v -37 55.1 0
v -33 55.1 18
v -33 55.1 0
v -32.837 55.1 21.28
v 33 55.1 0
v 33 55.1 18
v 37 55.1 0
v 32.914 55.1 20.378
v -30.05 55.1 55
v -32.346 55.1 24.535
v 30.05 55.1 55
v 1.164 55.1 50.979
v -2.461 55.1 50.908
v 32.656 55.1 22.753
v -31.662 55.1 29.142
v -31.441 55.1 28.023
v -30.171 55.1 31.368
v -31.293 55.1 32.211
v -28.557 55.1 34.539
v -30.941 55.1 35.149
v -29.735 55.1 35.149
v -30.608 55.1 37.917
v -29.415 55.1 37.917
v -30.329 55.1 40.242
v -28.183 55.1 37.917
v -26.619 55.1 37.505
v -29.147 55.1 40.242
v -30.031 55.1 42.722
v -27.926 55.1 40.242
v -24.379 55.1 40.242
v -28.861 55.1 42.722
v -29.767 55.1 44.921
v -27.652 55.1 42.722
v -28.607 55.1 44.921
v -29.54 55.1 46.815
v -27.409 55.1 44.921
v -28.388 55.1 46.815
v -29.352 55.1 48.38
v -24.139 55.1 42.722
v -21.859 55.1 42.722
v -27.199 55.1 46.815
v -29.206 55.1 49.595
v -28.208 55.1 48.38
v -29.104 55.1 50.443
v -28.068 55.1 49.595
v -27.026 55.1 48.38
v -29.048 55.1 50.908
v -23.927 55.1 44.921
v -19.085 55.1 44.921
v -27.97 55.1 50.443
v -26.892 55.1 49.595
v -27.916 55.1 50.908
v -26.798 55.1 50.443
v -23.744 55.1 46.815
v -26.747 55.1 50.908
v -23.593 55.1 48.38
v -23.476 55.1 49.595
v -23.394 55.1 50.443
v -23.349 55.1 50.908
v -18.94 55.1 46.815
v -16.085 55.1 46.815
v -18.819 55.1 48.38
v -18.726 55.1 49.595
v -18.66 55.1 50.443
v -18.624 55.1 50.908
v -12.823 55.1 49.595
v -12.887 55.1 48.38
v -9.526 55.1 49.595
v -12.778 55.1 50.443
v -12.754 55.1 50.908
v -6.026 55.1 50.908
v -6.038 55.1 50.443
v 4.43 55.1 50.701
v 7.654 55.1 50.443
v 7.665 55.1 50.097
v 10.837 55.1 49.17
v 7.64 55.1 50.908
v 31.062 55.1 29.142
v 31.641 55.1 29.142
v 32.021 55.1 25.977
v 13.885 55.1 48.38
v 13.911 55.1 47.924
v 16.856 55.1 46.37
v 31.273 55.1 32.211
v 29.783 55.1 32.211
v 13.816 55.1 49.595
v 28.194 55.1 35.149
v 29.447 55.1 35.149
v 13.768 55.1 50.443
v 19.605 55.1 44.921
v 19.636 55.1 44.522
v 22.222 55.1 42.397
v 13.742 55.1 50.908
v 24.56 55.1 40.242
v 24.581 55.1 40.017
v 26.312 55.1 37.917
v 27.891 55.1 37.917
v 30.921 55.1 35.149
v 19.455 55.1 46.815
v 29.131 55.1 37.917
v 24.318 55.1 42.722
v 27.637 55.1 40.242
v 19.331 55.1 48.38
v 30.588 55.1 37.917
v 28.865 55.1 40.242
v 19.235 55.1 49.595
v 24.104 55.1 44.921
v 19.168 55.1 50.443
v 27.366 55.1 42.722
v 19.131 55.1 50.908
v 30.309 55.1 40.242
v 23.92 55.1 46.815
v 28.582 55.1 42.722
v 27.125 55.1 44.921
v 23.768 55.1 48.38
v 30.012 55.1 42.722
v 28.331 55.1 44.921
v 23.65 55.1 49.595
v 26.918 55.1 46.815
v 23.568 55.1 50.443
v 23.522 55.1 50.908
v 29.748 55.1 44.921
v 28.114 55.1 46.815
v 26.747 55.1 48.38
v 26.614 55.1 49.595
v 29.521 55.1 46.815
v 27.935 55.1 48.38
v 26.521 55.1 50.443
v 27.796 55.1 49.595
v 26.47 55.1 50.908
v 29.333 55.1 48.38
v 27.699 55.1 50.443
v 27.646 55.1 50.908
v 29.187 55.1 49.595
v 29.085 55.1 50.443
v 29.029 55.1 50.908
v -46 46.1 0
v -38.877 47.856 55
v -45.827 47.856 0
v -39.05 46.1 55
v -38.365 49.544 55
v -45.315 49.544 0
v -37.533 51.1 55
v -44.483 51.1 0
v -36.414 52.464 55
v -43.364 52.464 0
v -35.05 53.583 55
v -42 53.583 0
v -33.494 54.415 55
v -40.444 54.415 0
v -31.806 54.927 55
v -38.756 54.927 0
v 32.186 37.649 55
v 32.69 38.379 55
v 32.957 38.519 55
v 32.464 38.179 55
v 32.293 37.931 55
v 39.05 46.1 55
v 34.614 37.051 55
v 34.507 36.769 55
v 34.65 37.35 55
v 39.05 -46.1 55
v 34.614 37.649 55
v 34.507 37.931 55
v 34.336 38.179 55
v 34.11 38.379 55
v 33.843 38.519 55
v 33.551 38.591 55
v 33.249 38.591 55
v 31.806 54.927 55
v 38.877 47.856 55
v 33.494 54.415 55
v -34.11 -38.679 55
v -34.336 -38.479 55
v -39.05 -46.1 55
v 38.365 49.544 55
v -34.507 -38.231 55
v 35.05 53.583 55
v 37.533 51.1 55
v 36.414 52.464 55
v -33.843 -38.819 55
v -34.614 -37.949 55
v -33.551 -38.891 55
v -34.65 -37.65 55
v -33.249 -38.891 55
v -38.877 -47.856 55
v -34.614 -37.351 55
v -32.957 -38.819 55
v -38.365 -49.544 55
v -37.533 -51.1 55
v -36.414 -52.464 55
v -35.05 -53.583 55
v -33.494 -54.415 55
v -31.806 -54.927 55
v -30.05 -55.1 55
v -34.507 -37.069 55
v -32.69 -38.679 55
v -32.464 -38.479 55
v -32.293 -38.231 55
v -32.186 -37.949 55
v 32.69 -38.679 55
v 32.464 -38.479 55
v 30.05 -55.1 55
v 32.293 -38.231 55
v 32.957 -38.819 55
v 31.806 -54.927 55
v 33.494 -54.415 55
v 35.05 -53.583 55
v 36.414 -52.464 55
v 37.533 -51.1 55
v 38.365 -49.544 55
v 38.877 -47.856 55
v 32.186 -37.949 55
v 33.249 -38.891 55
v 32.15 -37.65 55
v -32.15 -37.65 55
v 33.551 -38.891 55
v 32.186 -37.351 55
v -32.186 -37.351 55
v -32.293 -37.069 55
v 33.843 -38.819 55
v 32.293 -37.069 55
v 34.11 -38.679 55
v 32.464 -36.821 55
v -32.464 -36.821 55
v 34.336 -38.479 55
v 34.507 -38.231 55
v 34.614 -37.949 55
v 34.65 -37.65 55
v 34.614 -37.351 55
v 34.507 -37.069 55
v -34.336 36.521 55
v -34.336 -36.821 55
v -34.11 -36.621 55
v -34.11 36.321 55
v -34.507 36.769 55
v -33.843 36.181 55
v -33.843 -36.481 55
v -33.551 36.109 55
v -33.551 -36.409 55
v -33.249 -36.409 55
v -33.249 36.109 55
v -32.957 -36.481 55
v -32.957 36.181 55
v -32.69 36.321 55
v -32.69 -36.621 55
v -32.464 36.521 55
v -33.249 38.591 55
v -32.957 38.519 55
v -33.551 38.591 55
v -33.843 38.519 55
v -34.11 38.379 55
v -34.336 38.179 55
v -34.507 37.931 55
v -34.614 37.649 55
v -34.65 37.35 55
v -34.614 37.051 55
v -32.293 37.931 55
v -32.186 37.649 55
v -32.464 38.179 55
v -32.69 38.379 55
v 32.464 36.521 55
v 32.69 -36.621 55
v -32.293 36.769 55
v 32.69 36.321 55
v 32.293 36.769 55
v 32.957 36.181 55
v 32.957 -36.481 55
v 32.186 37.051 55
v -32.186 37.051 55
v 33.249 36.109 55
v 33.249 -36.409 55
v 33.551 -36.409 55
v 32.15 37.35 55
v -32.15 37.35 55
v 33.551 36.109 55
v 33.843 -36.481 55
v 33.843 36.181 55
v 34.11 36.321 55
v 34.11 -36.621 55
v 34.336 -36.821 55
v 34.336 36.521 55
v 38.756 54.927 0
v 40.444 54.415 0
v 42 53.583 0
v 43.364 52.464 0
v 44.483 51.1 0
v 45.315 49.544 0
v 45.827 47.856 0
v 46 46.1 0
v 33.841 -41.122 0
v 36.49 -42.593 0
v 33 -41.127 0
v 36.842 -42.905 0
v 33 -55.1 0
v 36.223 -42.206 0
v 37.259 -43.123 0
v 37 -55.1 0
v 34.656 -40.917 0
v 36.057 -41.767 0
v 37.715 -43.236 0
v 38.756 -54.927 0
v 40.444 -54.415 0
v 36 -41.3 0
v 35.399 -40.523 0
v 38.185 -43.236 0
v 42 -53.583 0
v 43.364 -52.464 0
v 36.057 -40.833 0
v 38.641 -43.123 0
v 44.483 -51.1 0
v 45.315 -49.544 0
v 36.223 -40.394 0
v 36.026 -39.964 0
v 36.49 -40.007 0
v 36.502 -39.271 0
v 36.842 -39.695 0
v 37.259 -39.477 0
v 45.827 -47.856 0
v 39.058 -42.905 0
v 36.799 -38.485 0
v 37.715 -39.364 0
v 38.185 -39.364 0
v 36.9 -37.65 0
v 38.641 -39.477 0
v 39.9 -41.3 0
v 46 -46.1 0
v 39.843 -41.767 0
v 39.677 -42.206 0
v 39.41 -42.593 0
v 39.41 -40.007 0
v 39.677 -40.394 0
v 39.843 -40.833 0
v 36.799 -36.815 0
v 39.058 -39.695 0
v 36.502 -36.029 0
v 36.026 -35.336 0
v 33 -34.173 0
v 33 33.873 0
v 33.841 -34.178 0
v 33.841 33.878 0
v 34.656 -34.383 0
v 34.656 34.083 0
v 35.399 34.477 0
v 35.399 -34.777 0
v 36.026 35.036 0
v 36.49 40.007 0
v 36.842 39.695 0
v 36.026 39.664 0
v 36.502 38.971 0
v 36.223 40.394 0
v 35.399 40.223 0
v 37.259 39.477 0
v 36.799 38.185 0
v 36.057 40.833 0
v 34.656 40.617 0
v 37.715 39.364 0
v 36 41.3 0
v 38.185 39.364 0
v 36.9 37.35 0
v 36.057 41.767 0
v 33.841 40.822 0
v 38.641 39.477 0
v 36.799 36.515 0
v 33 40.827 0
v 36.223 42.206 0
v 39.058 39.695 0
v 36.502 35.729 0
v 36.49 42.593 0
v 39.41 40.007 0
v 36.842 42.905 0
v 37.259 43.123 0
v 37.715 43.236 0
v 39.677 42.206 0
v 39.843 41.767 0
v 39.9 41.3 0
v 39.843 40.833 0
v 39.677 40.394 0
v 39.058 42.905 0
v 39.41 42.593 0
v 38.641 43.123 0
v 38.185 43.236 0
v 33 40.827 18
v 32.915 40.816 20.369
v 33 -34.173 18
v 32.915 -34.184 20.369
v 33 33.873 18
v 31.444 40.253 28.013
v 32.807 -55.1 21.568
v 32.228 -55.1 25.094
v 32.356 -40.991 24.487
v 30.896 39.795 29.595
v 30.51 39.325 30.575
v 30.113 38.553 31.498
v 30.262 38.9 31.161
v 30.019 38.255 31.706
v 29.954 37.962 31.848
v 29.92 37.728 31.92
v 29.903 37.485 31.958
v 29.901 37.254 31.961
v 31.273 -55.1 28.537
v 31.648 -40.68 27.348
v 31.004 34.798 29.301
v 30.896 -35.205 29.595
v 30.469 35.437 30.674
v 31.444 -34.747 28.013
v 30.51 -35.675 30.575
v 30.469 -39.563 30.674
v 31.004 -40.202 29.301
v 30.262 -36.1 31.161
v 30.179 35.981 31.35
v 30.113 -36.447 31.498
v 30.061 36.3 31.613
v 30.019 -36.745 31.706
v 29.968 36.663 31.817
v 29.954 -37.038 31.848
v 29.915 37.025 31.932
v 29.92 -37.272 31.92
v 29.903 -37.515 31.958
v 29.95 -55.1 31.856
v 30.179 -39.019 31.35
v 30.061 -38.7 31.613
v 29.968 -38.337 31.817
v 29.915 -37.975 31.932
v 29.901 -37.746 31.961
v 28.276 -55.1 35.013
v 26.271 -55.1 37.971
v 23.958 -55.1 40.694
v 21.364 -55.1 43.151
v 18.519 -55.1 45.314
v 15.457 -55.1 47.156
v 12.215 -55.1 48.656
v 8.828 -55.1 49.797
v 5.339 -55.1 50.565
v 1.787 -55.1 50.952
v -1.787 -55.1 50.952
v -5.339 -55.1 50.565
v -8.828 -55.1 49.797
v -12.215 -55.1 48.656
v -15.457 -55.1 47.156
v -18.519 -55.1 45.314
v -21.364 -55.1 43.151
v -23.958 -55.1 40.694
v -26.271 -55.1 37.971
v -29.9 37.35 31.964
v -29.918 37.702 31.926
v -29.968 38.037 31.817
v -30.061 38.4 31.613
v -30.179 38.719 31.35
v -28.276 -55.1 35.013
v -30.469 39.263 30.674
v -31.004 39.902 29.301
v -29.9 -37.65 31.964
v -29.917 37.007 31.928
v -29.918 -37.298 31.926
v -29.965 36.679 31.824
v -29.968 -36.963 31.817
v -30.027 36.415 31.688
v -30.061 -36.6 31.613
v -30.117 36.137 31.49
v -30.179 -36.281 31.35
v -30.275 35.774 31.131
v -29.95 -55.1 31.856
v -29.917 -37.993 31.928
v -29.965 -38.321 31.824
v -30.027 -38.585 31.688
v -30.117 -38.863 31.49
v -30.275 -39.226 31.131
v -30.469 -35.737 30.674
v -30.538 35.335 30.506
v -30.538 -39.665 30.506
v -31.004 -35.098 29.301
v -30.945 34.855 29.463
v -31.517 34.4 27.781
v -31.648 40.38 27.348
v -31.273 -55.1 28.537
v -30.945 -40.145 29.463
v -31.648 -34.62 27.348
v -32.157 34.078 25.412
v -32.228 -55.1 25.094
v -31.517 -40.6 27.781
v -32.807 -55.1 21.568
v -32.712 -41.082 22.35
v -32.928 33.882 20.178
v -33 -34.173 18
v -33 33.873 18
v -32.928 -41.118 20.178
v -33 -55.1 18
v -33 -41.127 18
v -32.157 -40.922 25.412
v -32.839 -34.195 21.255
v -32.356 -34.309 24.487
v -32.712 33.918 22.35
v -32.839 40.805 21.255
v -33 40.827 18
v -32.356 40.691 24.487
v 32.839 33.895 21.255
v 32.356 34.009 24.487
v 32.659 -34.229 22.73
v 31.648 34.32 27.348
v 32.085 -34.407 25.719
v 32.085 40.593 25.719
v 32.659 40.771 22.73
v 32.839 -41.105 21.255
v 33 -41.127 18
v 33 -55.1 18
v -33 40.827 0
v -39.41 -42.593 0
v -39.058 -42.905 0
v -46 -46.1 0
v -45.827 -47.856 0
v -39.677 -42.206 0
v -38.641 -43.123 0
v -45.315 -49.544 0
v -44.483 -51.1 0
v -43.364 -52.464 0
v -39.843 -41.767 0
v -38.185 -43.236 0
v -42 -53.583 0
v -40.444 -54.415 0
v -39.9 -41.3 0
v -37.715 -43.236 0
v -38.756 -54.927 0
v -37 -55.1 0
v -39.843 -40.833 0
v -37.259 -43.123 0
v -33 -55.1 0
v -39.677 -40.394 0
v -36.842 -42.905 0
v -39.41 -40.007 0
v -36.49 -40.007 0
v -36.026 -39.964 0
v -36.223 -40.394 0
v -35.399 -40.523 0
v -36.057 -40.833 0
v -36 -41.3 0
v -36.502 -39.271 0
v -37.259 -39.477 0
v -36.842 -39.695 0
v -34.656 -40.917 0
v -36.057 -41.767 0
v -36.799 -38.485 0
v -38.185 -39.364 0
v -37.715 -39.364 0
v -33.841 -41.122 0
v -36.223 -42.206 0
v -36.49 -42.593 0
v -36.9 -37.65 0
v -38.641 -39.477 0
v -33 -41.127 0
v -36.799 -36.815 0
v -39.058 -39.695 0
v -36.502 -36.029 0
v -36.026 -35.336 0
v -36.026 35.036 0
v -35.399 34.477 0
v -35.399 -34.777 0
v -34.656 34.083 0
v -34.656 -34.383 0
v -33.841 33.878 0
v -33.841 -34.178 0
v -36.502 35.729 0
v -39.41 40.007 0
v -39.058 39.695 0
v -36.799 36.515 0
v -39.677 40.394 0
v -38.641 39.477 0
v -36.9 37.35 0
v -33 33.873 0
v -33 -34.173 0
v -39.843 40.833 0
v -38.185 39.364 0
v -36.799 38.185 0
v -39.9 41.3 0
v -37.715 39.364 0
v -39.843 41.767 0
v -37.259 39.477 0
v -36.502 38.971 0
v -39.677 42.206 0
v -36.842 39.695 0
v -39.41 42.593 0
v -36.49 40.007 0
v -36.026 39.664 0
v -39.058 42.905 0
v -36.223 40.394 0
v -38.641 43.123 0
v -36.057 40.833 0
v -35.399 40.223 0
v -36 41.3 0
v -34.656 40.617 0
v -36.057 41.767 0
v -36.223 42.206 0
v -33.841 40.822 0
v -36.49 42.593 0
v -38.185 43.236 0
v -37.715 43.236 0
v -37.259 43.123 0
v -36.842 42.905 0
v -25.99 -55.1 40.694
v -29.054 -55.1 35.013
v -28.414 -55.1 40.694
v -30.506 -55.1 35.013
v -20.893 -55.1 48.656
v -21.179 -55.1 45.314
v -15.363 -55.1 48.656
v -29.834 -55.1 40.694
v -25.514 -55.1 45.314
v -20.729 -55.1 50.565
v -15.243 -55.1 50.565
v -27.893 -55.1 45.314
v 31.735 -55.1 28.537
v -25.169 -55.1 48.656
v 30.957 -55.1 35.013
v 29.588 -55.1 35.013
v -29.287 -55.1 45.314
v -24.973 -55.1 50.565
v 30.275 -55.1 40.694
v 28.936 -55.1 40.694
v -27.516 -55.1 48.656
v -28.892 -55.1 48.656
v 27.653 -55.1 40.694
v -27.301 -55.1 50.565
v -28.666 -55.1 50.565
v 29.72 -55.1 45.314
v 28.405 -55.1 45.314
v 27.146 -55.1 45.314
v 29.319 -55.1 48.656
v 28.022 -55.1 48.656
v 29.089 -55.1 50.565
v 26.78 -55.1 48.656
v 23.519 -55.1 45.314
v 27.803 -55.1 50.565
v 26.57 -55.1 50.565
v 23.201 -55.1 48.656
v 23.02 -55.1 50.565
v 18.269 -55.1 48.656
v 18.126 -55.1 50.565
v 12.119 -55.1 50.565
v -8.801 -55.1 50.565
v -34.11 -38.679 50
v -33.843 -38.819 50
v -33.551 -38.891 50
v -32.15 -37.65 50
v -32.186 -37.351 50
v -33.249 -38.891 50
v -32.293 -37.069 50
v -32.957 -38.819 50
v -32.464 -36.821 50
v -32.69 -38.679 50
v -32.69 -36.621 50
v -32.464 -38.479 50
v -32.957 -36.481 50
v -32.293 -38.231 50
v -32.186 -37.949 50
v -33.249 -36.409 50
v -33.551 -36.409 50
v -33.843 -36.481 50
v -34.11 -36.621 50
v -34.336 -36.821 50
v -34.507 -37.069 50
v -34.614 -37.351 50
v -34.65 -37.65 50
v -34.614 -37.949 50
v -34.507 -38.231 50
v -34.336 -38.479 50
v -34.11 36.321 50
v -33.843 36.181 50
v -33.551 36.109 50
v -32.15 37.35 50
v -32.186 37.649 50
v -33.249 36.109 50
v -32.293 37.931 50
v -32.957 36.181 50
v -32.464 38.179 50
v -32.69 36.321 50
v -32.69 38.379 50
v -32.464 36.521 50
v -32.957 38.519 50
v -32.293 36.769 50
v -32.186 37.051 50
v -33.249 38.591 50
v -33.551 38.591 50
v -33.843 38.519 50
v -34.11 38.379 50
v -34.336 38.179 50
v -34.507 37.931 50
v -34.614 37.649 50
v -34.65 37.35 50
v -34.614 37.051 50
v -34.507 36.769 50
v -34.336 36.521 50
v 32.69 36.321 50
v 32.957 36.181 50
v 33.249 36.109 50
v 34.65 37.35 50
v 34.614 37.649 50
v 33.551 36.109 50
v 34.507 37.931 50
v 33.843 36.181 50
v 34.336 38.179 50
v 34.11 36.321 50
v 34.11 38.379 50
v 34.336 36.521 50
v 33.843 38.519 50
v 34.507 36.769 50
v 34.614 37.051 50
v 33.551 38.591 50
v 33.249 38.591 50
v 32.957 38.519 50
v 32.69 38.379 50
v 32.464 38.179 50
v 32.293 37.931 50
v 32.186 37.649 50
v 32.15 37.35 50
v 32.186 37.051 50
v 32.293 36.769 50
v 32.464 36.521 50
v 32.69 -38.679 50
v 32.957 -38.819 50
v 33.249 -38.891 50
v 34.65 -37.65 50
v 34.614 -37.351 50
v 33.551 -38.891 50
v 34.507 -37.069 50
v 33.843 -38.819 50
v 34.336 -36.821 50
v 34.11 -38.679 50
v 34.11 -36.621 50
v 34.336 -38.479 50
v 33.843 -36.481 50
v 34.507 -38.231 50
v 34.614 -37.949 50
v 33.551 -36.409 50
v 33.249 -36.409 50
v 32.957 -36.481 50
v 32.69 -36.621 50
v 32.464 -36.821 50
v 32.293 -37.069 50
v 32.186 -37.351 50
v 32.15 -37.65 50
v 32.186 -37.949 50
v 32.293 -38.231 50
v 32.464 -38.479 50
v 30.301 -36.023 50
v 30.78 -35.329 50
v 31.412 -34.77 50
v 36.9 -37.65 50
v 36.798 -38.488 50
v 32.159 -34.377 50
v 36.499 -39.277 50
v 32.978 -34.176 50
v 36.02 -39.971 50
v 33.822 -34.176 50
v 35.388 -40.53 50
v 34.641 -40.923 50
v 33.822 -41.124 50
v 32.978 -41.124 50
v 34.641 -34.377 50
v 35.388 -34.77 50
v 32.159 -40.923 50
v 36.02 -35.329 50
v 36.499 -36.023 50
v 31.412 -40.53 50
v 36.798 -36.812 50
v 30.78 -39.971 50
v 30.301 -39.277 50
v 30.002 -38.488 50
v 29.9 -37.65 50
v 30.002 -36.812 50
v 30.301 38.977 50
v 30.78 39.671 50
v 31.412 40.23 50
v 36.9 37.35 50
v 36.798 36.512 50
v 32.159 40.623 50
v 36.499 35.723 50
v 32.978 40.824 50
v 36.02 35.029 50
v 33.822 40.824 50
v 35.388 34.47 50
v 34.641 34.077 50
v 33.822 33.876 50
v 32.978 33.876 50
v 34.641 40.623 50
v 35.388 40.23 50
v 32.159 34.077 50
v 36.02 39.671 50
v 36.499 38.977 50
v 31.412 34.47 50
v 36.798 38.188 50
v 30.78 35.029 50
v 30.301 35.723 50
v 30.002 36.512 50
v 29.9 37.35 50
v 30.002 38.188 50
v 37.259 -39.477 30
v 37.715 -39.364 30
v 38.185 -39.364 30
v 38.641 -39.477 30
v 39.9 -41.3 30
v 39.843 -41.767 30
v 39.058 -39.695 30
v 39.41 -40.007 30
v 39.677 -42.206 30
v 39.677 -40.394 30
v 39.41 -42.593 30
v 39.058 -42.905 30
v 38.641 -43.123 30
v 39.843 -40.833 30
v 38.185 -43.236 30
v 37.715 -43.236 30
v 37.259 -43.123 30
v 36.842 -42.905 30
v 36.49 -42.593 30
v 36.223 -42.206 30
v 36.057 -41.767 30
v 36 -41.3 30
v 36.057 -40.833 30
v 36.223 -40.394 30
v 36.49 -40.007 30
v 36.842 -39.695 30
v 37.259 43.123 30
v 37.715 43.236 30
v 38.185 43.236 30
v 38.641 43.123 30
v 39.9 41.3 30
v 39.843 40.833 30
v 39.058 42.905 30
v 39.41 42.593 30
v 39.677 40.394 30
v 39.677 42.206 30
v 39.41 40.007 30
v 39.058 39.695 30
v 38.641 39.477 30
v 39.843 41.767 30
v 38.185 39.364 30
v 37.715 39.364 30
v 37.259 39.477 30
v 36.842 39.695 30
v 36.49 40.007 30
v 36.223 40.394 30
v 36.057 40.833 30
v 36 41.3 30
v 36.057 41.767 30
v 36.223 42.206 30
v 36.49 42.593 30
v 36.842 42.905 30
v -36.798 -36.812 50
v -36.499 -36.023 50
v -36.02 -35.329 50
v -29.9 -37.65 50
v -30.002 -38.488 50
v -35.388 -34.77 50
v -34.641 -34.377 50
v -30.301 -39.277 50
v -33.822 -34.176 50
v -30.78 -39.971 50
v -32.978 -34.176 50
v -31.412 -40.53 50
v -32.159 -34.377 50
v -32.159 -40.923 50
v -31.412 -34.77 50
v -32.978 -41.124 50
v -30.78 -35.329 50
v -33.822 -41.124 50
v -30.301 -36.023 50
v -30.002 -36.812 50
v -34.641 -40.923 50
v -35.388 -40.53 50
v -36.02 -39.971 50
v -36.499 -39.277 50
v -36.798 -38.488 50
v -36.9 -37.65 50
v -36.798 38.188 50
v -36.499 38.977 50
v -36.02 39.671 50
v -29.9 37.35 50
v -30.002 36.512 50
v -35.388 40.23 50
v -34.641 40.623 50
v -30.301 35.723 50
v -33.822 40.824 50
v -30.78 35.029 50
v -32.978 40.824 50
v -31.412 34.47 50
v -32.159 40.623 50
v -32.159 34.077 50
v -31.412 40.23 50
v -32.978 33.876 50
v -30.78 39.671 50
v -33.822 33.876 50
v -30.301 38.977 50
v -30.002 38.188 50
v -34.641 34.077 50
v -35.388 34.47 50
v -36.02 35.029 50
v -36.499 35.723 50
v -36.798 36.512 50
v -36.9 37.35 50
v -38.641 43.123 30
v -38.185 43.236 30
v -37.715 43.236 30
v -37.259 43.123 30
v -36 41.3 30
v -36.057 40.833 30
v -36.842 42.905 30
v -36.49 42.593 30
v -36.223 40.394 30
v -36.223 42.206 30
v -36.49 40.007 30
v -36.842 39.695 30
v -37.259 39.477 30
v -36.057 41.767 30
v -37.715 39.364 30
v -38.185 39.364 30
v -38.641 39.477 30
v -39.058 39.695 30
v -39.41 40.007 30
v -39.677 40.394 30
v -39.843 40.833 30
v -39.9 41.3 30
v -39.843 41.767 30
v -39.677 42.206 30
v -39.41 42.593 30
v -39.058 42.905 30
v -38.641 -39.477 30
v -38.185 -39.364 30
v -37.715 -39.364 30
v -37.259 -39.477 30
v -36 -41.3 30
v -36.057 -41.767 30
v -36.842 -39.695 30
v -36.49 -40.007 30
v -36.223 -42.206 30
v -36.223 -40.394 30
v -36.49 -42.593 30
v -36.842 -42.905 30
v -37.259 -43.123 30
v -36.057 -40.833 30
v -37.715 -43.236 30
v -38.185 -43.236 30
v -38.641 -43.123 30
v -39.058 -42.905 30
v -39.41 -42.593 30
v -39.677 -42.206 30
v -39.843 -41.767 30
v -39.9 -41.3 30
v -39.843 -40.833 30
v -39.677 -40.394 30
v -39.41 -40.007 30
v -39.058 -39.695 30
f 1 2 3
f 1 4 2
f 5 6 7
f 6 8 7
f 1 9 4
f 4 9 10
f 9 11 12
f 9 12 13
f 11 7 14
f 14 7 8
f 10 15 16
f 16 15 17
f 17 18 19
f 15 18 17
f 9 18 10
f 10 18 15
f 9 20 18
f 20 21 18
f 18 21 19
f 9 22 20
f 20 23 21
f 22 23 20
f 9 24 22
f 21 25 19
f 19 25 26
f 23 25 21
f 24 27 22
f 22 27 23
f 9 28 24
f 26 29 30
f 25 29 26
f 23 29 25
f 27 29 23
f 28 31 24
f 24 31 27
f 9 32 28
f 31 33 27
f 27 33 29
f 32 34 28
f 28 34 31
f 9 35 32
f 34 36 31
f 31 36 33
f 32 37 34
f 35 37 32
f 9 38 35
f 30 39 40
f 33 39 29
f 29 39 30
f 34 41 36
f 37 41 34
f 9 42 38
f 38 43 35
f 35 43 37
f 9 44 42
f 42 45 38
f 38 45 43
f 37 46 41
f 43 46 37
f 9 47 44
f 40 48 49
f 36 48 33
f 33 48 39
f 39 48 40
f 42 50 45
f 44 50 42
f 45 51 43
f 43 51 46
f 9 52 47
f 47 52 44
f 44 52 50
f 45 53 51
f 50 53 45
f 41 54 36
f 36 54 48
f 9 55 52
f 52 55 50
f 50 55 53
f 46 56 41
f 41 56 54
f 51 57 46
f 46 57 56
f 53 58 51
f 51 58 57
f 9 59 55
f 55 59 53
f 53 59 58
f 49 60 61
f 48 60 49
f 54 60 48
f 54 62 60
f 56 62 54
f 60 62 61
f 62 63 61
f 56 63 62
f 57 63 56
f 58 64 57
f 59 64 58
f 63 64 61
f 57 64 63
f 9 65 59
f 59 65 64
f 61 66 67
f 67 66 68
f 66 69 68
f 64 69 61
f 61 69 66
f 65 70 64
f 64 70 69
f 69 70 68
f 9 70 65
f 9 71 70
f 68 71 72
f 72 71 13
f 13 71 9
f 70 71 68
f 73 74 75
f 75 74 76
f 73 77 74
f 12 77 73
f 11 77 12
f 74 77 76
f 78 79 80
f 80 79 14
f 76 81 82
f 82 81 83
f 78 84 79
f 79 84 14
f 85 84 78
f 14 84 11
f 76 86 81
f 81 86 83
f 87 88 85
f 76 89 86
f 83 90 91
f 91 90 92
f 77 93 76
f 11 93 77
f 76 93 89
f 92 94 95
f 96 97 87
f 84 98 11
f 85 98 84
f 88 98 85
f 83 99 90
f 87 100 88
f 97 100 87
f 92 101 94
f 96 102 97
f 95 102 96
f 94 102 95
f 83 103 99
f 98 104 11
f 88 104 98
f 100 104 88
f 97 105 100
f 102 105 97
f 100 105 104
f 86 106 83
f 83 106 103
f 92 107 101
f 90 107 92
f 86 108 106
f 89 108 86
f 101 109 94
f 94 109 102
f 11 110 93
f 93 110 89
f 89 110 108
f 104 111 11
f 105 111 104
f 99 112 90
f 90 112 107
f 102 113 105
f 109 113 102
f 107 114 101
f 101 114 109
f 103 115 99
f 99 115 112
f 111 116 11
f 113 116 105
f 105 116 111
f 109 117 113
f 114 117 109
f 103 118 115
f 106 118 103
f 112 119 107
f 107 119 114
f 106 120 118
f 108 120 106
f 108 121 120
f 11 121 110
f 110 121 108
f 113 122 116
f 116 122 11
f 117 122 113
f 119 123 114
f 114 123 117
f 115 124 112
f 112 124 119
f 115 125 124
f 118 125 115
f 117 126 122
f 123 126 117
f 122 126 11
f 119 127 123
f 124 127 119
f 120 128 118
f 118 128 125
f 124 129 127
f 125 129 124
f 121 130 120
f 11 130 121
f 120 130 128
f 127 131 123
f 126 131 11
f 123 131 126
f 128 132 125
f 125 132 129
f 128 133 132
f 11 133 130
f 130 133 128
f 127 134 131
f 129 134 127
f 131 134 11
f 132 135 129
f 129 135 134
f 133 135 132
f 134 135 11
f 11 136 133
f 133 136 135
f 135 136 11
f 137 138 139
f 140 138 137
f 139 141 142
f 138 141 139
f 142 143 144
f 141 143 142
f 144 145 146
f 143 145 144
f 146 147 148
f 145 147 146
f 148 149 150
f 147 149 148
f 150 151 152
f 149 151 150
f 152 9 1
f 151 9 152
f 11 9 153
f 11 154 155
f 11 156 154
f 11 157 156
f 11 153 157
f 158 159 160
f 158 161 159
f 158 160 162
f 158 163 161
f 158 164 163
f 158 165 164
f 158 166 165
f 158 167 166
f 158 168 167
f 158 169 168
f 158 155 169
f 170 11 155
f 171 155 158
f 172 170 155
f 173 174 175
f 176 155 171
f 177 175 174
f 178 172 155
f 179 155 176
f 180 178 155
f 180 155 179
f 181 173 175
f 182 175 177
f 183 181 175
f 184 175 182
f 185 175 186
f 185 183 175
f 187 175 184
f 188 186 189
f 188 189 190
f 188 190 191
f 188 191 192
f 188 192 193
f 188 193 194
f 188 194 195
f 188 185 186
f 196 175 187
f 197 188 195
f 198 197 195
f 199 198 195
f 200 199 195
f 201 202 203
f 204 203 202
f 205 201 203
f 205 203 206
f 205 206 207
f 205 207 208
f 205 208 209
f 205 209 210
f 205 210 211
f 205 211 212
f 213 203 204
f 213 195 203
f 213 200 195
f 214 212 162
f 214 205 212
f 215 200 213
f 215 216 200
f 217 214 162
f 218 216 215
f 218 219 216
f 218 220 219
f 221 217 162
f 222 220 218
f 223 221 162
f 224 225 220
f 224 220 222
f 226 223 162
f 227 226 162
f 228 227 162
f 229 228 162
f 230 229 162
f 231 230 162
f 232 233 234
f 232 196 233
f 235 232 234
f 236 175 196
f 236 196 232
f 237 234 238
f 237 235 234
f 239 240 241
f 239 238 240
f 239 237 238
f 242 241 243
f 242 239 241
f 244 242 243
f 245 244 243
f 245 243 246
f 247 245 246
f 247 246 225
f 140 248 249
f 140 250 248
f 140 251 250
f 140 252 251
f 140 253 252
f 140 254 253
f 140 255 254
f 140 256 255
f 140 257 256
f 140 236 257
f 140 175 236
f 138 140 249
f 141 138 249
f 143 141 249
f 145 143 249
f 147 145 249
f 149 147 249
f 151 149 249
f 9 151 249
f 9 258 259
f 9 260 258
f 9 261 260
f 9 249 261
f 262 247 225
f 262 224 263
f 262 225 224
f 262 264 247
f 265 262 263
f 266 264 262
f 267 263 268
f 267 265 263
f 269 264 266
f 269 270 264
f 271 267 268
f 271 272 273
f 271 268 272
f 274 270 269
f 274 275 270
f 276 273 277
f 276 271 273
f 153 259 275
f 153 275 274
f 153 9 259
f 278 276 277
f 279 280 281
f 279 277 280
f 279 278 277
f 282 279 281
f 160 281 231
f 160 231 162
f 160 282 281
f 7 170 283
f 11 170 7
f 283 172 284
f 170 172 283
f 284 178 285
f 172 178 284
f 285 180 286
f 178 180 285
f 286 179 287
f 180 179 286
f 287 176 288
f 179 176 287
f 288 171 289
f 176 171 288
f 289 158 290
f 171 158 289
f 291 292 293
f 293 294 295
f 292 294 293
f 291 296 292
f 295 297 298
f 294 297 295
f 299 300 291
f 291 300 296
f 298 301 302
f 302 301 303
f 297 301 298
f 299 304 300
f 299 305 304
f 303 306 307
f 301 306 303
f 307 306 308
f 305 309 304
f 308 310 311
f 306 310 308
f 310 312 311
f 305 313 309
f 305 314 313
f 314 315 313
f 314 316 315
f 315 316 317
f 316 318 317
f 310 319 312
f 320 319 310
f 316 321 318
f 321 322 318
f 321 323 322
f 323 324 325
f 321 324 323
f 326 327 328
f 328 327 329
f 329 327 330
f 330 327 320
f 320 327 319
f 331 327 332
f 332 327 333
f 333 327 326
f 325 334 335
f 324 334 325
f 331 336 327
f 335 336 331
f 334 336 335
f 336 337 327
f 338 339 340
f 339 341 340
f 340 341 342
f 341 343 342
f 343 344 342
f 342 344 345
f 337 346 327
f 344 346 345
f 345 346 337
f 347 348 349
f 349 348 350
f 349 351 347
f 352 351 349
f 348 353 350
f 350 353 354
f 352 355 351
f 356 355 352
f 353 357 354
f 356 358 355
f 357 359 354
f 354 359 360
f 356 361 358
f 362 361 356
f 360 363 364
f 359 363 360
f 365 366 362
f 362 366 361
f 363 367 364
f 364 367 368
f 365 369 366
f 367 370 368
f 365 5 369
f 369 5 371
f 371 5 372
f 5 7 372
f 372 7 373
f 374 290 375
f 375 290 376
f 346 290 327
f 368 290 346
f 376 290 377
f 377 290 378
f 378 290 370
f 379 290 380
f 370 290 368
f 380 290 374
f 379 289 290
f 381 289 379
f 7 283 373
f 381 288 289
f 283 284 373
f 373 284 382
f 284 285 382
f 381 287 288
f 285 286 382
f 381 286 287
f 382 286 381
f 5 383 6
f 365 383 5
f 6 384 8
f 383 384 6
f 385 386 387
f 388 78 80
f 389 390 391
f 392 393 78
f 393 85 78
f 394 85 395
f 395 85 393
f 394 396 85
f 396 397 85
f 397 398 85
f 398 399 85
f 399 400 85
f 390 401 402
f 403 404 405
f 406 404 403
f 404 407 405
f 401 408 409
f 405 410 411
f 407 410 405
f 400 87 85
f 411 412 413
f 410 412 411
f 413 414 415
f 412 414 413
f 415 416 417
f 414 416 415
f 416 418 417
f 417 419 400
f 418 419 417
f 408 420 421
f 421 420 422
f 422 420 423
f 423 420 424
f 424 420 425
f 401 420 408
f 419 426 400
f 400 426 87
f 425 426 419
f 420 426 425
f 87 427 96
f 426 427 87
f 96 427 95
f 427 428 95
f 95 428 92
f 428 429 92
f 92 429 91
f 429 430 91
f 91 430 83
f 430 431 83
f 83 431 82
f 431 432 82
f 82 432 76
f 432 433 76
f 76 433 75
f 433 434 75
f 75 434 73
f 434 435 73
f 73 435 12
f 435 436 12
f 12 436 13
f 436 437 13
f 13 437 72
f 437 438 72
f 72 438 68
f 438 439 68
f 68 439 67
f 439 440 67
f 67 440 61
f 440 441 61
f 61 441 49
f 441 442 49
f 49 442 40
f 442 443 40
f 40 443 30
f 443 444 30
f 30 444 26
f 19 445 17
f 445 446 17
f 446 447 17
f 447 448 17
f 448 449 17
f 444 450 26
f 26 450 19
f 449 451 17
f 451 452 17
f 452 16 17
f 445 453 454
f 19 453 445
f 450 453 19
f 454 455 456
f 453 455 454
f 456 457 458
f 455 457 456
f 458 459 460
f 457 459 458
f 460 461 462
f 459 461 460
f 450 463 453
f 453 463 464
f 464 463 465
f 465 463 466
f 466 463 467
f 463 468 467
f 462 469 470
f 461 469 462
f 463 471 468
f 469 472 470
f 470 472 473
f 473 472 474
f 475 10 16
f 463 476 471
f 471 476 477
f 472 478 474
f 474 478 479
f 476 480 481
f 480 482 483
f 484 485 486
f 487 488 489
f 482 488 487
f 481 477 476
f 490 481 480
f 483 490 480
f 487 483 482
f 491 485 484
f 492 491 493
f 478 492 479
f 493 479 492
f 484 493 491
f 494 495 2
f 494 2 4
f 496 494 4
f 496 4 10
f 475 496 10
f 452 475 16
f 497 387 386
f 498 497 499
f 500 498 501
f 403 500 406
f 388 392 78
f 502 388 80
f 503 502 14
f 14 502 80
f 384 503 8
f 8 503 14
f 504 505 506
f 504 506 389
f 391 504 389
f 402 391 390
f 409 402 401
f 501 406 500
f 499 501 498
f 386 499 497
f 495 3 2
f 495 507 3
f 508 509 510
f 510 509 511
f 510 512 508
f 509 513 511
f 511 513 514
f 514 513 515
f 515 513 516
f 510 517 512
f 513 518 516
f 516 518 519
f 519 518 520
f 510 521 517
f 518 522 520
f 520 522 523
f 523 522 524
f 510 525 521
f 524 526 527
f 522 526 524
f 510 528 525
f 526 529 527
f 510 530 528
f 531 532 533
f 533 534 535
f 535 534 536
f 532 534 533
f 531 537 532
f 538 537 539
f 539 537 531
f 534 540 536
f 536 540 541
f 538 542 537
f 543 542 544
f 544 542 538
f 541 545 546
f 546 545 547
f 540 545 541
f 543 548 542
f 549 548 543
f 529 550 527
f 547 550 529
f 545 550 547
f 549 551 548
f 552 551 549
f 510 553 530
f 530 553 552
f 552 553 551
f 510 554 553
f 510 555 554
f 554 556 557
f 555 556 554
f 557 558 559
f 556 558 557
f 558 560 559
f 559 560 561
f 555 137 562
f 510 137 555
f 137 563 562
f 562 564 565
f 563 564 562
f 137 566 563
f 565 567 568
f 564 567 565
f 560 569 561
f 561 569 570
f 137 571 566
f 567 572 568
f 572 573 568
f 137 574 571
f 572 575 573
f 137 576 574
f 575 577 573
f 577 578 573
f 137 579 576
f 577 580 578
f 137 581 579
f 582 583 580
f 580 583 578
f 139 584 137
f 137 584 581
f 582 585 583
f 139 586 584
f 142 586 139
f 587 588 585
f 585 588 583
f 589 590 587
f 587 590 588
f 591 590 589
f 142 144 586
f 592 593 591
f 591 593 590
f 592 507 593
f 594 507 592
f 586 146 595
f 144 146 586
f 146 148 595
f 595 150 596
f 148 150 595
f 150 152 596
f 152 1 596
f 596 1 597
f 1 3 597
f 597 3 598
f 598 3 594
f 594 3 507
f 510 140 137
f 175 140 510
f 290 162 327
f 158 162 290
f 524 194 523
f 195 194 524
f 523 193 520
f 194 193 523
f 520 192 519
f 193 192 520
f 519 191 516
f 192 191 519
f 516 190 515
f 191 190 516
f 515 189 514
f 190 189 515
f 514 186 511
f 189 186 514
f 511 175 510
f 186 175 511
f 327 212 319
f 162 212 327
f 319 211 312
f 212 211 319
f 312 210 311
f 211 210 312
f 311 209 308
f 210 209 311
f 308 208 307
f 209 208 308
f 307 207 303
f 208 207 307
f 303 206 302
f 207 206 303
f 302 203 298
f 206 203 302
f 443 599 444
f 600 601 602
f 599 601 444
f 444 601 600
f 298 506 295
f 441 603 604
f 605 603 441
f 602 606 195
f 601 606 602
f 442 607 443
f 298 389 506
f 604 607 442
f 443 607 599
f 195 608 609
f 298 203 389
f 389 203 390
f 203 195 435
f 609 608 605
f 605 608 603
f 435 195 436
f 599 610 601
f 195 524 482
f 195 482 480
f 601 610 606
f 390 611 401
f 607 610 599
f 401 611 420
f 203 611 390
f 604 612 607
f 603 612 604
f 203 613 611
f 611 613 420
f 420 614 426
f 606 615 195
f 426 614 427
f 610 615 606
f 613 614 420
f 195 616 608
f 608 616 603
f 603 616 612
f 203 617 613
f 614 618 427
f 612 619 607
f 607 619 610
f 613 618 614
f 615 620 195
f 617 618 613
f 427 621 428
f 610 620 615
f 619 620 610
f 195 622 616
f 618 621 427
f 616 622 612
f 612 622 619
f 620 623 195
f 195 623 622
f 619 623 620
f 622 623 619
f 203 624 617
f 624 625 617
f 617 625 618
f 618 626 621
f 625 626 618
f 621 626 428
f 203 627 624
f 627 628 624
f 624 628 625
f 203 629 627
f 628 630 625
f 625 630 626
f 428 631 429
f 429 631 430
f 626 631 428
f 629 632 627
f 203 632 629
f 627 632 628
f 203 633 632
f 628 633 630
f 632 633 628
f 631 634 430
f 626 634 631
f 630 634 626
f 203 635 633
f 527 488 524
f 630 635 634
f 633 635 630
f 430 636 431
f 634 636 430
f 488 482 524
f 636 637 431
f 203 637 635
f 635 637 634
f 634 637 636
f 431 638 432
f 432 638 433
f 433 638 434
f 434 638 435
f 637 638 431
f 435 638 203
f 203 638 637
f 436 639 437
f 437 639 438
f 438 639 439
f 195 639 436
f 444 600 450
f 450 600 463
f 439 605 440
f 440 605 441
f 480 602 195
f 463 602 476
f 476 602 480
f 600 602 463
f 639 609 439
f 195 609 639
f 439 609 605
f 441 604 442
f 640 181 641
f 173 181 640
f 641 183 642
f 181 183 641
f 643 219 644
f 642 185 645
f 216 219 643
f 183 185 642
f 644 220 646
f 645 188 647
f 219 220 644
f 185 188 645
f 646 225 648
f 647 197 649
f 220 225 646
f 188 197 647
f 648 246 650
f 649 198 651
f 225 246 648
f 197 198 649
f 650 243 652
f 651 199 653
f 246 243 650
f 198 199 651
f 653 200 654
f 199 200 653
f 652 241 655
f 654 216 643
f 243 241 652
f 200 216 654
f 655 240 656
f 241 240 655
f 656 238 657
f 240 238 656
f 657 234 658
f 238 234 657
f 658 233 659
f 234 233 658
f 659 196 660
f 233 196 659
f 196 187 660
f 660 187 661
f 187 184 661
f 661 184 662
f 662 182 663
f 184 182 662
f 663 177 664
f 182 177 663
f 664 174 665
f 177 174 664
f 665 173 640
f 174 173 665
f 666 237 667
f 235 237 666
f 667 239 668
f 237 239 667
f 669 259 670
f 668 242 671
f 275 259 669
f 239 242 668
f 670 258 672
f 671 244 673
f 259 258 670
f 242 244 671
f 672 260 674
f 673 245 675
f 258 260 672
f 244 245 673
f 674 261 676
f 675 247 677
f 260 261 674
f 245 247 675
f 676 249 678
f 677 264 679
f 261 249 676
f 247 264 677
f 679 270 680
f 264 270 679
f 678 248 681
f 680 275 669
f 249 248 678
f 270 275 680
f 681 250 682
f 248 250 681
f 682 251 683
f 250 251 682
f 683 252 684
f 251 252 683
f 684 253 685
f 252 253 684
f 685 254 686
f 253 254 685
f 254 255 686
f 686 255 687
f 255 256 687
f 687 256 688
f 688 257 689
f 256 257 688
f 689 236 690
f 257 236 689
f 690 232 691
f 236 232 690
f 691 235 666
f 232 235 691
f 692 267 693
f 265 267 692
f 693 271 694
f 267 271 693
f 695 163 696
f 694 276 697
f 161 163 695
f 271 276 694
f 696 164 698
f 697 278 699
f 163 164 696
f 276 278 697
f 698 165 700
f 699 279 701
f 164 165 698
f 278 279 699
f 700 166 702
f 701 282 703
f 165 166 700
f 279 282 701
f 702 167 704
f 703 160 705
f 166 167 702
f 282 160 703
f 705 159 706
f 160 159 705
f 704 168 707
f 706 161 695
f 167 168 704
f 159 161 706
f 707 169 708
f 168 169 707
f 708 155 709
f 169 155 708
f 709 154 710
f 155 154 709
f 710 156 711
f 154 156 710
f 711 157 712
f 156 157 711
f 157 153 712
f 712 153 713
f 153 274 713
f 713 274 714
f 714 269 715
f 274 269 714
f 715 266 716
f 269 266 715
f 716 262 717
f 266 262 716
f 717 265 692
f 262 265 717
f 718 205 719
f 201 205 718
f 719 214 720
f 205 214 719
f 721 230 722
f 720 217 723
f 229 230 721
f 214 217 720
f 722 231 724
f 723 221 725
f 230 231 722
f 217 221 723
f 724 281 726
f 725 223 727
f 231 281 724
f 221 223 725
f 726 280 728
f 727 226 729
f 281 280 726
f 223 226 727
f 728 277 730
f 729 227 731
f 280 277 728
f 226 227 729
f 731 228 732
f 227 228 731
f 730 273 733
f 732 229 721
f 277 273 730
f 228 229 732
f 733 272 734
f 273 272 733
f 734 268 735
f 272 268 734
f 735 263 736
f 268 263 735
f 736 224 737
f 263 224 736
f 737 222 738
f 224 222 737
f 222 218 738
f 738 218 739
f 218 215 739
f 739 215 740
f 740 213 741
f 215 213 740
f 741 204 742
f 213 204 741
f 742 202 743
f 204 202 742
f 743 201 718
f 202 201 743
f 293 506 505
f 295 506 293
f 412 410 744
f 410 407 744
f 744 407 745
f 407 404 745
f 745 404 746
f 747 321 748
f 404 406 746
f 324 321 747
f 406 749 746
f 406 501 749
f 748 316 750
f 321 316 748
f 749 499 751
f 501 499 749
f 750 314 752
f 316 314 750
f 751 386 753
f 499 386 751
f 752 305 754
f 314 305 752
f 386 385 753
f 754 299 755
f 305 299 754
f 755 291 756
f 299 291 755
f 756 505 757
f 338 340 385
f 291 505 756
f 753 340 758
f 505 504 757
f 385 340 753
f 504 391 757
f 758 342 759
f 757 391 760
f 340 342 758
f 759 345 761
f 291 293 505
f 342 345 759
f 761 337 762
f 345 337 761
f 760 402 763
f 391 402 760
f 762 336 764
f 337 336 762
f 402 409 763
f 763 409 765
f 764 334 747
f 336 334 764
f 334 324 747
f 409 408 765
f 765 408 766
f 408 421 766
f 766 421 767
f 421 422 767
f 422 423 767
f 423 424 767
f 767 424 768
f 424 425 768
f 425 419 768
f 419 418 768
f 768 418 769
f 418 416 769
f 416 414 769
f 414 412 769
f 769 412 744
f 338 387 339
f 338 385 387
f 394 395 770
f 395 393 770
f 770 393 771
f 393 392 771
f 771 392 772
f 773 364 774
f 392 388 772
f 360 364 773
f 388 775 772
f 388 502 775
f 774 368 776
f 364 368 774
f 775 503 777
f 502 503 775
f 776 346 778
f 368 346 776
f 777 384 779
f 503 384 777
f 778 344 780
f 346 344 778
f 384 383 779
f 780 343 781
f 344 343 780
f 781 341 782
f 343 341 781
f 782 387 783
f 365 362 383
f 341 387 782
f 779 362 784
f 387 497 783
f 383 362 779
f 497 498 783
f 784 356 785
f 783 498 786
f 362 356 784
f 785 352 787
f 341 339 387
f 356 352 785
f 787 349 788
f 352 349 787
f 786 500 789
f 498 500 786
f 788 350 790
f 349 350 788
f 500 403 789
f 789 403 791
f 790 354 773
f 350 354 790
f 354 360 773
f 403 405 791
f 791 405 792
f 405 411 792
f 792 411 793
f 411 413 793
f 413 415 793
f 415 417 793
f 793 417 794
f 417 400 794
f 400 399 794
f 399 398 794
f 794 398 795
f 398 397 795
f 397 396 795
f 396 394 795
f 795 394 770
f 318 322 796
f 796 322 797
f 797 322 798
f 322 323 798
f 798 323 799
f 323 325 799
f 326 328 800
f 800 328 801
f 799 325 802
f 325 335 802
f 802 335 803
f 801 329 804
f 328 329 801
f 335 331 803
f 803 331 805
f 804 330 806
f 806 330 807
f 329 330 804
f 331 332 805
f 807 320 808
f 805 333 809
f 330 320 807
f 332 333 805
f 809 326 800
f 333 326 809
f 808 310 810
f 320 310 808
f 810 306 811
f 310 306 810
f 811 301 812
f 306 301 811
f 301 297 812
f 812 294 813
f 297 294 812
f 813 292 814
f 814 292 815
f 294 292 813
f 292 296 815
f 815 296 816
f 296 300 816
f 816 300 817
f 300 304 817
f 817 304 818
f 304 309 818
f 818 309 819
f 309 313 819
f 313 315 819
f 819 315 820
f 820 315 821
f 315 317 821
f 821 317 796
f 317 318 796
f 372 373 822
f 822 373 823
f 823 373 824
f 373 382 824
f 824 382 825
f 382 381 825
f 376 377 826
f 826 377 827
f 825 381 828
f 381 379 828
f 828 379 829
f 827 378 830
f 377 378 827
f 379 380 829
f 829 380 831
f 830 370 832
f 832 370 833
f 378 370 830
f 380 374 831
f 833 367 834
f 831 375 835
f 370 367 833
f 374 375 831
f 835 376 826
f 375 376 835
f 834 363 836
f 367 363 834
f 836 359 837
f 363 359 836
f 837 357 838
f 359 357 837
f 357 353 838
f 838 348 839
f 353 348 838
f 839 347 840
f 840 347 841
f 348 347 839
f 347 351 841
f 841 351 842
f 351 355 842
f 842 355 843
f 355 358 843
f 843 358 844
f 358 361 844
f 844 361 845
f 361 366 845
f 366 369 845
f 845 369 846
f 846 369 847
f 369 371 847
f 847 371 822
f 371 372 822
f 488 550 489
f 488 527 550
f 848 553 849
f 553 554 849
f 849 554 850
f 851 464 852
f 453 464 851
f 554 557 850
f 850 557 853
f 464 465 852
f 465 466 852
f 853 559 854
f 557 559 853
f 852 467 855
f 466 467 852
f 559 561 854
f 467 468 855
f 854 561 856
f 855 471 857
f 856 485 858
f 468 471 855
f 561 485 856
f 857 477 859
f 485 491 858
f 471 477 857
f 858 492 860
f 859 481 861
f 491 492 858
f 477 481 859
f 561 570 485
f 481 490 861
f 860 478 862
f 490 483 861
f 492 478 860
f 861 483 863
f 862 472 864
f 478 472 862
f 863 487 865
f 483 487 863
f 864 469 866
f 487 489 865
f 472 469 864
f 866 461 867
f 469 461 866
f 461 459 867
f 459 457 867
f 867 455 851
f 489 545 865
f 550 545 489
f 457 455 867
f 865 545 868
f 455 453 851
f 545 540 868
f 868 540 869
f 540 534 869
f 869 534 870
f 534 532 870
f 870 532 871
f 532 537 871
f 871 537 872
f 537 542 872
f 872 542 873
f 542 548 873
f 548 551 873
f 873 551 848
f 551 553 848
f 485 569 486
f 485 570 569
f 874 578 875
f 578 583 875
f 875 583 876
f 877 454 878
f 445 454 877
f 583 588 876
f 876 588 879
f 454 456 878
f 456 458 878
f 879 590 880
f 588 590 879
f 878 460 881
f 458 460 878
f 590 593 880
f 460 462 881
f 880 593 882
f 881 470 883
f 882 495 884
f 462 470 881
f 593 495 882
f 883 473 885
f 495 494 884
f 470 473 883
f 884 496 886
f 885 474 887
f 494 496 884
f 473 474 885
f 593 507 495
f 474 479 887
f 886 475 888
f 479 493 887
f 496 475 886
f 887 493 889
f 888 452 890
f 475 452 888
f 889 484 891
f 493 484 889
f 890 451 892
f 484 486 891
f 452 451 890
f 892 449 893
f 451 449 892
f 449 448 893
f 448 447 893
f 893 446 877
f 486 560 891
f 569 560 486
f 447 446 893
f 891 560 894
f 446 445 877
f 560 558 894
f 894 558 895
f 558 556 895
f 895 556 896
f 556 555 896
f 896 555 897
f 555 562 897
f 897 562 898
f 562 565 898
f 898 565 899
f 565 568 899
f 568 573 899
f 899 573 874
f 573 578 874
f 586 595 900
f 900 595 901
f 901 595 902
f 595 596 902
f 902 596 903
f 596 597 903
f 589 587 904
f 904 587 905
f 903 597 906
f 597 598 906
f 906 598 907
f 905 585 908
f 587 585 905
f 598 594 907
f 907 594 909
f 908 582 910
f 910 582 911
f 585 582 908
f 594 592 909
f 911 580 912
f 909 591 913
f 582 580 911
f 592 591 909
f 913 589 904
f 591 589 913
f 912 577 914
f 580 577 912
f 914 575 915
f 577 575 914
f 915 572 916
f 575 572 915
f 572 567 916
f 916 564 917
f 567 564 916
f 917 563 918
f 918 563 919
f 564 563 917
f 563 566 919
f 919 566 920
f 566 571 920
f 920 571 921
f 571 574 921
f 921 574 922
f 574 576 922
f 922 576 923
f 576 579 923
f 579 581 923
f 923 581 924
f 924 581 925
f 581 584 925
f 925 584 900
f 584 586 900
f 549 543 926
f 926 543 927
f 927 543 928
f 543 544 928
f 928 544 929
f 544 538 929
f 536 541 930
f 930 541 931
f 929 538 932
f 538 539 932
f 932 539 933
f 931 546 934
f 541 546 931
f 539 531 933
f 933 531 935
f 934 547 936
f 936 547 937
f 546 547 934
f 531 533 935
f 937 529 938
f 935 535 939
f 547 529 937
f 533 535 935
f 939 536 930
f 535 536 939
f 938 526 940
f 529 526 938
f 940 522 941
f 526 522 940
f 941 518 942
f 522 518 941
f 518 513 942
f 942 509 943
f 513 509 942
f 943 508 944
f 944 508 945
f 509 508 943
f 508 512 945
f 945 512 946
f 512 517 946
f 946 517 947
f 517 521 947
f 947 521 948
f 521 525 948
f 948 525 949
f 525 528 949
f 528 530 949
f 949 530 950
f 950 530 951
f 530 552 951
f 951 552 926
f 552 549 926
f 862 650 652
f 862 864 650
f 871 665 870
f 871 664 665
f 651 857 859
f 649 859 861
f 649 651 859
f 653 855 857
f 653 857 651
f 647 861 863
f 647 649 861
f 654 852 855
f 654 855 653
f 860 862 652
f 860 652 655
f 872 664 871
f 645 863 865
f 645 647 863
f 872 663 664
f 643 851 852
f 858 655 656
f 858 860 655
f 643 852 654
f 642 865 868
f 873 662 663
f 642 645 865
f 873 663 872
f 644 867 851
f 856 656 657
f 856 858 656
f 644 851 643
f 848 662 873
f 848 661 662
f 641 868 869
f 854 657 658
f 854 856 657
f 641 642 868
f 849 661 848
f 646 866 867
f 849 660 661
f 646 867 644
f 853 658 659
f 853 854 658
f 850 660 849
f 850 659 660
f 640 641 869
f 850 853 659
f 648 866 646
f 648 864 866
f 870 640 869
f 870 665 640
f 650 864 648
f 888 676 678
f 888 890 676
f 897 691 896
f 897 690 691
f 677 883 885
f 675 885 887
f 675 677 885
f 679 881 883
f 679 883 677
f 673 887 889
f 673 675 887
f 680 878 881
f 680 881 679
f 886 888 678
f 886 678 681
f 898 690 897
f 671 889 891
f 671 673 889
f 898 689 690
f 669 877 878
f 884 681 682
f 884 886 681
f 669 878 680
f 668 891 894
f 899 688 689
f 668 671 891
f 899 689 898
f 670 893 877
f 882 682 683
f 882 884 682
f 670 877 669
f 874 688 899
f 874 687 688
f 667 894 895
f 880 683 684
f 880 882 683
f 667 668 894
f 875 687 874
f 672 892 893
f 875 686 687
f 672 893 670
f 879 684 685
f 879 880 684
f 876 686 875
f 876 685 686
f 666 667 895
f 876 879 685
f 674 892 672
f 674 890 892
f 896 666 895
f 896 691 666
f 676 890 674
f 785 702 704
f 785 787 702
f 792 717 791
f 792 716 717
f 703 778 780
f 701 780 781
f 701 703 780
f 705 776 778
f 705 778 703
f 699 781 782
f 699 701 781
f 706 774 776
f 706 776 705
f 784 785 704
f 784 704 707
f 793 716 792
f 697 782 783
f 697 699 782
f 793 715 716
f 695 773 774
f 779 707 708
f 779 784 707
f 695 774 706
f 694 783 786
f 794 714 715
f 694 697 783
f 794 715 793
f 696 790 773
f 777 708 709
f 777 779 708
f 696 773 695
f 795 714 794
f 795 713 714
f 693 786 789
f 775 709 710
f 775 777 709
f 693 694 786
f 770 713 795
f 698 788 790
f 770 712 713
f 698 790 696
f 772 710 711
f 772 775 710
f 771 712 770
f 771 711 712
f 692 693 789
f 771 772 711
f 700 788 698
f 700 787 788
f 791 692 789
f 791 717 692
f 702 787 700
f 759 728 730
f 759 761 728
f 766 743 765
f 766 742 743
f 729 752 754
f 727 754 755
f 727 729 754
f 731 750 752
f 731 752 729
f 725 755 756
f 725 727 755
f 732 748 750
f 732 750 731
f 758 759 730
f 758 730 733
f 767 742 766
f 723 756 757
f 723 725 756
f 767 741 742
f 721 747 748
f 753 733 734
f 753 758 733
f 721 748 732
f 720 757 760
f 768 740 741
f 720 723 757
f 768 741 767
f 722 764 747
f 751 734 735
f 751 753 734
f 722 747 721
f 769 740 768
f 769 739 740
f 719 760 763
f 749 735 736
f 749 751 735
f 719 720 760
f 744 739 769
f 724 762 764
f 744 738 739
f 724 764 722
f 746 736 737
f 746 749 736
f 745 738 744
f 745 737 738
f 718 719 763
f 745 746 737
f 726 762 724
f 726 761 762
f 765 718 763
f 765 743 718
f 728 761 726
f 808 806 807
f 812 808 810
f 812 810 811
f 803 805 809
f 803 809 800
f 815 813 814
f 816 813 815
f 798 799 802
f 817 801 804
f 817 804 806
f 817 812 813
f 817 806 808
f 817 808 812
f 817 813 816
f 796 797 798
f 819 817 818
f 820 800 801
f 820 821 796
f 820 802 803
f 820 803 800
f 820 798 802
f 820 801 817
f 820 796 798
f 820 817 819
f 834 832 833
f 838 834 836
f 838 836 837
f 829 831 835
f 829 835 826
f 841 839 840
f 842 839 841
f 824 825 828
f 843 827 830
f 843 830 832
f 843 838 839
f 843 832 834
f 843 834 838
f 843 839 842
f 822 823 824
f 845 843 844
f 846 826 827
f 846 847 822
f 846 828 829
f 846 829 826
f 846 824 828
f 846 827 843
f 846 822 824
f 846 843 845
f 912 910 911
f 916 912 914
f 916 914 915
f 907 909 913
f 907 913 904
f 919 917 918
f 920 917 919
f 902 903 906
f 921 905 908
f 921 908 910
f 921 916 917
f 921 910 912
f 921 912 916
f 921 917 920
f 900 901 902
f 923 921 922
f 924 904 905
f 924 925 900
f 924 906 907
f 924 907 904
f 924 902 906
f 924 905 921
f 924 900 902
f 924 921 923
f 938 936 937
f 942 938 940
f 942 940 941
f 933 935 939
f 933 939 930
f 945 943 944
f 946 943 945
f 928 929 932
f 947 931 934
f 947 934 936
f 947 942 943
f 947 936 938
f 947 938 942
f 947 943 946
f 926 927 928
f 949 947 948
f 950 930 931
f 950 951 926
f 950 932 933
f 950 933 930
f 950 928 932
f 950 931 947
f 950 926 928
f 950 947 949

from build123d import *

# Parameters (mm, degrees)
POCKET_DEPTH    = 110.201
SKETCH003_R     = 1.95
POCKET001_DEPTH = 30
SKETCH004_R     = 1.25
POCKET002_DEPTH = 55.001
SKETCH005_R     = 3.5
POCKET003_DEPTH = 50


with BuildPart() as part:
    # Sketch → Loft section 0
    with BuildSketch(Plane.XY):
        with BuildLine():
            Line((-37, 55.1), (37, 55.1))
            ThreePointArc((46, 46.1), (43.363961, 52.463961), (37, 55.1))
            Line((46, 46.1), (46, -46.1))
            ThreePointArc((37, -55.1), (43.363961, -52.463961), (46, -46.1))
            Line((37, -55.1), (-37, -55.1))
            ThreePointArc((-46, -46.1), (-43.363961, -52.463961), (-37, -55.1))
            Line((-46, -46.1), (-46, 46.1))
            ThreePointArc((-37, 55.1), (-43.363961, 52.463961), (-46, 46.1))
        make_face()
    # Sketch001 → Loft section 1
    with BuildSketch(Plane.XY.offset(55)):
        with BuildLine():
            Line((-30.05, 55.1), (30.05, 55.1))
            ThreePointArc((39.05, 46.1), (36.413961, 52.463961), (30.05, 55.1))
            Line((39.05, 46.1), (39.05, -46.1))
            ThreePointArc((30.05, -55.1), (36.413961, -52.463961), (39.05, -46.1))
            Line((30.05, -55.1), (-30.05, -55.1))
            ThreePointArc((-39.05, -46.1), (-36.413961, -52.463961), (-30.05, -55.1))
            Line((-39.05, -46.1), (-39.05, 46.1))
            ThreePointArc((-30.05, 55.1), (-36.413961, 52.463961), (-39.05, 46.1))
        make_face()
    loft()

    # Sketch002 (on Face5 of BaseFeature) → Pocket (cut, through all)
    with BuildSketch(Plane.XZ.offset(55.1)):
        with BuildLine():
            Line((33, 18), (33, 0))
            Line((33, 0), (-33, 0))
            Line((-33, 0), (-33, 18))
            ThreePointArc((33, 18), (0, 51), (-33, 18))
        make_face()
    extrude(amount=-POCKET_DEPTH, mode=Mode.SUBTRACT)

    # Sketch003 (on Face5 of Pocket) → Pocket001 (cut)
    with BuildSketch(Plane(origin=(0, 0, 0), x_dir=(1, 0, 0), z_dir=(0, 0, -1))):
        with Locations((-37.95, 41.3)):
            Circle(SKETCH003_R)
        with Locations((-37.95, -41.3)):
            Circle(SKETCH003_R)
        with Locations((37.95, -41.3)):
            Circle(SKETCH003_R)
        with Locations((37.95, 41.3)):
            Circle(SKETCH003_R)
    extrude(amount=-POCKET001_DEPTH, mode=Mode.SUBTRACT)

    # Sketch004 (on Face3 of Pocket001) → Pocket002 (cut, through all)
    with BuildSketch(Plane.XY.offset(55)):
        with Locations((-33.4, 37.35)):
            Circle(SKETCH004_R)
        with Locations((33.4, 37.35)):
            Circle(SKETCH004_R)
        with Locations((33.4, -37.65)):
            Circle(SKETCH004_R)
        with Locations((-33.4, -37.65)):
            Circle(SKETCH004_R)
    extrude(amount=-POCKET002_DEPTH, mode=Mode.SUBTRACT)

    # Sketch005 (on Face9 of Pocket002) → Pocket003 (cut)
    with BuildSketch(Plane(origin=(0, 0, 0), x_dir=(1, 0, 0), z_dir=(0, 0, -1))):
        with Locations((-33.4, -37.35)):
            Circle(SKETCH005_R)
        with Locations((33.4, -37.35)):
            Circle(SKETCH005_R)
        with Locations((-33.4, 37.65)):
            Circle(SKETCH005_R)
        with Locations((33.4, 37.65)):
            Circle(SKETCH005_R)
    extrude(amount=-POCKET003_DEPTH, mode=Mode.SUBTRACT)


solid = part.part
